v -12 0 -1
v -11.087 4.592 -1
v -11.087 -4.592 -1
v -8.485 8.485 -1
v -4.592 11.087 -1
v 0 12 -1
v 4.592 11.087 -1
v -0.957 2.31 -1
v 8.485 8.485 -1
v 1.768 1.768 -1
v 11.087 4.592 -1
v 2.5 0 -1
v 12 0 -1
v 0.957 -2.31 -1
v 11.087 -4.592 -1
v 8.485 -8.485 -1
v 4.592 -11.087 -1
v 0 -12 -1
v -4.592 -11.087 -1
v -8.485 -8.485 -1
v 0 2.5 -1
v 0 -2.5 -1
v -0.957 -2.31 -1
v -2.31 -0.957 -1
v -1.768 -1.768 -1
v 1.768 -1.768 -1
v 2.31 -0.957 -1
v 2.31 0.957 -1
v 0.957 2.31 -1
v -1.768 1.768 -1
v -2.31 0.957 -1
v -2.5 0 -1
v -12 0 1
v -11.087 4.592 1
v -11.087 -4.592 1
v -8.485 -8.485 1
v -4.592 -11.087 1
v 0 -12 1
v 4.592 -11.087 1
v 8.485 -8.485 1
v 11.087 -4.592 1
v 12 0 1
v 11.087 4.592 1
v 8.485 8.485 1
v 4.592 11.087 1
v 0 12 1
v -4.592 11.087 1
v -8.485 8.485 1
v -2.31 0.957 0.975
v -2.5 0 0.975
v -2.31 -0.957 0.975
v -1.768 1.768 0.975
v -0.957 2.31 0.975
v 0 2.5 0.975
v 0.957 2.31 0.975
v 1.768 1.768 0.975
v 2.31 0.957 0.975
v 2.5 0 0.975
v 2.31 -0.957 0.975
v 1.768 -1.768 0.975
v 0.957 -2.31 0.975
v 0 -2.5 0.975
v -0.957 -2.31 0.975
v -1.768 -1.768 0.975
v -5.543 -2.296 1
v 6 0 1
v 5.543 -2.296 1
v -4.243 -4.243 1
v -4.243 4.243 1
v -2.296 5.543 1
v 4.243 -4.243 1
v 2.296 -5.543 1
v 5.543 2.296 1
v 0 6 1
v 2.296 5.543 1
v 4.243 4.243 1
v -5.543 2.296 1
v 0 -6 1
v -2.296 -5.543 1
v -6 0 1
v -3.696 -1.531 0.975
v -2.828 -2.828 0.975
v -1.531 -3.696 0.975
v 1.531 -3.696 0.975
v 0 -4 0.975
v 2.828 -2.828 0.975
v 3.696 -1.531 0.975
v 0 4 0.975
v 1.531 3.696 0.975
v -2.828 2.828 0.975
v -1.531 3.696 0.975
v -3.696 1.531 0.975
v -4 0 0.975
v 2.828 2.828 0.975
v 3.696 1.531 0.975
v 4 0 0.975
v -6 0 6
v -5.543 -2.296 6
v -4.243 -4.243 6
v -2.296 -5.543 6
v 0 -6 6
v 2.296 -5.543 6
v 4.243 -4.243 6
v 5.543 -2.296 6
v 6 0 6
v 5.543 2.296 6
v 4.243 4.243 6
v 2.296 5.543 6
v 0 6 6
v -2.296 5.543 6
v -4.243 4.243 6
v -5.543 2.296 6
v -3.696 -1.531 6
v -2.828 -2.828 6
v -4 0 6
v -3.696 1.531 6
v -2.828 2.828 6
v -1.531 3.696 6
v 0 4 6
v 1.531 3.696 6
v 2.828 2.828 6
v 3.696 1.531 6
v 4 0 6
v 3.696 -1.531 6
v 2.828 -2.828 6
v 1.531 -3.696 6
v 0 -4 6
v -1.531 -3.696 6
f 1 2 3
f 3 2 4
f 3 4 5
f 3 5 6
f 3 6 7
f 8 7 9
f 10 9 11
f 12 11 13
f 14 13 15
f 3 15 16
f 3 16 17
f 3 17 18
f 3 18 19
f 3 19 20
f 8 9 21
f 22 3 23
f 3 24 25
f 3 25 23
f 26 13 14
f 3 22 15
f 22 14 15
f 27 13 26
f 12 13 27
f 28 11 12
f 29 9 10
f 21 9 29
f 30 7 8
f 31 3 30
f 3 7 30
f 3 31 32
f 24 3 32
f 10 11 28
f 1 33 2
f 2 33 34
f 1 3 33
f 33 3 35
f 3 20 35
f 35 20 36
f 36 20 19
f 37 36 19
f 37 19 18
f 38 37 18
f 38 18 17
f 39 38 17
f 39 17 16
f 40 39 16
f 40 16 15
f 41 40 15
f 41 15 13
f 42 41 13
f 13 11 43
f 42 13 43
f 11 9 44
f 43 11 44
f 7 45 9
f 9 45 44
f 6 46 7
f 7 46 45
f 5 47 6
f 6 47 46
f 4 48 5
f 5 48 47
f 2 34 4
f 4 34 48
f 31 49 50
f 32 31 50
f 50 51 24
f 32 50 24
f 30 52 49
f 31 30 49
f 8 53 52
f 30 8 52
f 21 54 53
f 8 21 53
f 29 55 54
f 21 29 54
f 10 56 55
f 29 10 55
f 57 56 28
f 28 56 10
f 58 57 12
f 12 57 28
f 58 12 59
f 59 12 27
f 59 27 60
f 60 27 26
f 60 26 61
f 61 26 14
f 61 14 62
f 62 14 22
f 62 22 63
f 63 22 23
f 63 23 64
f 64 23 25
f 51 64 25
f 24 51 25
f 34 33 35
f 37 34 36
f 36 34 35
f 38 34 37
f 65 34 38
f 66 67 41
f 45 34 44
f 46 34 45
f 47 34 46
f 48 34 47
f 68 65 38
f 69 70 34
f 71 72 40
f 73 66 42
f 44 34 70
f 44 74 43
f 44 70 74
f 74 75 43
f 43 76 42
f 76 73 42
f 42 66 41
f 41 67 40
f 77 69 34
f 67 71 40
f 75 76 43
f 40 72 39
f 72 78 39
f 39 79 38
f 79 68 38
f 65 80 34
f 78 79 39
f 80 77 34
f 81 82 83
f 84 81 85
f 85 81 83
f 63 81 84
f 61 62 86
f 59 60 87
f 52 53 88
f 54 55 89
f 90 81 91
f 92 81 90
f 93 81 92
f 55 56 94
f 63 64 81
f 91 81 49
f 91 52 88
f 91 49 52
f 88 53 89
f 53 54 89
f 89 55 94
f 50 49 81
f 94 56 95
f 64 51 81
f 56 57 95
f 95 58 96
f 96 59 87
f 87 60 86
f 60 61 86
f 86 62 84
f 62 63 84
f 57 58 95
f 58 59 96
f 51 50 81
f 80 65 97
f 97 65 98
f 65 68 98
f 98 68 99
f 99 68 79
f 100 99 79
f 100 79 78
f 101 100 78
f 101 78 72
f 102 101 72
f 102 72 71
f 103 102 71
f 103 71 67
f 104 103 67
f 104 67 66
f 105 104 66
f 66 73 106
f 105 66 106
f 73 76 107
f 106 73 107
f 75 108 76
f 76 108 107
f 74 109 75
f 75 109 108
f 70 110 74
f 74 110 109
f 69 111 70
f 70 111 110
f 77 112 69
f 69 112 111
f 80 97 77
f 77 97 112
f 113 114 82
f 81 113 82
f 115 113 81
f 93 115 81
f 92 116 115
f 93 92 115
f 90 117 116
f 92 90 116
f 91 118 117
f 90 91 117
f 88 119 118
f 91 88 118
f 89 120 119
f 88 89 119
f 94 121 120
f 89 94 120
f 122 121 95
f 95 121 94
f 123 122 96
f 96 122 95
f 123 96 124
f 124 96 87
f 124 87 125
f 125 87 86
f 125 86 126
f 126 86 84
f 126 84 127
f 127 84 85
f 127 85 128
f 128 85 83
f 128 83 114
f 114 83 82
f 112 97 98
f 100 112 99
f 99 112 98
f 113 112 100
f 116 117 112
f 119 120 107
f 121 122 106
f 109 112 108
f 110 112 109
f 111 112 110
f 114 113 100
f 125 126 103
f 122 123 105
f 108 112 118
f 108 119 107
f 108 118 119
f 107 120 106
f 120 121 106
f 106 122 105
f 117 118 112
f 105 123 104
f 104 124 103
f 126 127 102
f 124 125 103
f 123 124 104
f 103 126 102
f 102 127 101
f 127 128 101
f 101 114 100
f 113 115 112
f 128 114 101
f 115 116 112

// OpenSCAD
rim_diam   = 24;
rim_height = 2;

filament_diam = 3;
tube_outer_diam = 8;
tube_inner_diam = 5;

socket_depth = 5;
socket_wall_thickness = 2;
socket_inner_diam = tube_outer_diam;

filament_opening = tube_inner_diam;

resolution = 16;

module hole(diam,height,sides) {
}

module retainer() {
  module body() {
    cylinder(r=rim_diam/2,h=rim_height,center=true,$fn=resolution);

    translate([0,0,rim_height/2+socket_depth/2])
      cylinder(r=socket_inner_diam/2+socket_wall_thickness,h=socket_depth,center=true,$fn=resolution);
  }

  module holes() {
    translate([0,0,rim_height/2+socket_depth/2])
      cylinder(r=socket_inner_diam/2,h=socket_depth+0.05,center=true,$fn=resolution);

    cylinder(r=filament_opening/2,h=socket_depth*3,center=true,$fn=resolution);

    % cylinder(r=filament_diam/2,h=socket_depth*8,center=true,$fn=resolution);
  }

  difference() {
    body();
    holes();
  }
}

module bowden_tube() {
  height = 30;

  translate([0,0,rim_height/2+height/2])
    difference() {
      cylinder(r=tube_outer_diam/2,h=height,center=true);
      cylinder(r=tube_inner_diam/2,h=height+0.05,center=true);
    }
}

% bowden_tube();
retainer();
